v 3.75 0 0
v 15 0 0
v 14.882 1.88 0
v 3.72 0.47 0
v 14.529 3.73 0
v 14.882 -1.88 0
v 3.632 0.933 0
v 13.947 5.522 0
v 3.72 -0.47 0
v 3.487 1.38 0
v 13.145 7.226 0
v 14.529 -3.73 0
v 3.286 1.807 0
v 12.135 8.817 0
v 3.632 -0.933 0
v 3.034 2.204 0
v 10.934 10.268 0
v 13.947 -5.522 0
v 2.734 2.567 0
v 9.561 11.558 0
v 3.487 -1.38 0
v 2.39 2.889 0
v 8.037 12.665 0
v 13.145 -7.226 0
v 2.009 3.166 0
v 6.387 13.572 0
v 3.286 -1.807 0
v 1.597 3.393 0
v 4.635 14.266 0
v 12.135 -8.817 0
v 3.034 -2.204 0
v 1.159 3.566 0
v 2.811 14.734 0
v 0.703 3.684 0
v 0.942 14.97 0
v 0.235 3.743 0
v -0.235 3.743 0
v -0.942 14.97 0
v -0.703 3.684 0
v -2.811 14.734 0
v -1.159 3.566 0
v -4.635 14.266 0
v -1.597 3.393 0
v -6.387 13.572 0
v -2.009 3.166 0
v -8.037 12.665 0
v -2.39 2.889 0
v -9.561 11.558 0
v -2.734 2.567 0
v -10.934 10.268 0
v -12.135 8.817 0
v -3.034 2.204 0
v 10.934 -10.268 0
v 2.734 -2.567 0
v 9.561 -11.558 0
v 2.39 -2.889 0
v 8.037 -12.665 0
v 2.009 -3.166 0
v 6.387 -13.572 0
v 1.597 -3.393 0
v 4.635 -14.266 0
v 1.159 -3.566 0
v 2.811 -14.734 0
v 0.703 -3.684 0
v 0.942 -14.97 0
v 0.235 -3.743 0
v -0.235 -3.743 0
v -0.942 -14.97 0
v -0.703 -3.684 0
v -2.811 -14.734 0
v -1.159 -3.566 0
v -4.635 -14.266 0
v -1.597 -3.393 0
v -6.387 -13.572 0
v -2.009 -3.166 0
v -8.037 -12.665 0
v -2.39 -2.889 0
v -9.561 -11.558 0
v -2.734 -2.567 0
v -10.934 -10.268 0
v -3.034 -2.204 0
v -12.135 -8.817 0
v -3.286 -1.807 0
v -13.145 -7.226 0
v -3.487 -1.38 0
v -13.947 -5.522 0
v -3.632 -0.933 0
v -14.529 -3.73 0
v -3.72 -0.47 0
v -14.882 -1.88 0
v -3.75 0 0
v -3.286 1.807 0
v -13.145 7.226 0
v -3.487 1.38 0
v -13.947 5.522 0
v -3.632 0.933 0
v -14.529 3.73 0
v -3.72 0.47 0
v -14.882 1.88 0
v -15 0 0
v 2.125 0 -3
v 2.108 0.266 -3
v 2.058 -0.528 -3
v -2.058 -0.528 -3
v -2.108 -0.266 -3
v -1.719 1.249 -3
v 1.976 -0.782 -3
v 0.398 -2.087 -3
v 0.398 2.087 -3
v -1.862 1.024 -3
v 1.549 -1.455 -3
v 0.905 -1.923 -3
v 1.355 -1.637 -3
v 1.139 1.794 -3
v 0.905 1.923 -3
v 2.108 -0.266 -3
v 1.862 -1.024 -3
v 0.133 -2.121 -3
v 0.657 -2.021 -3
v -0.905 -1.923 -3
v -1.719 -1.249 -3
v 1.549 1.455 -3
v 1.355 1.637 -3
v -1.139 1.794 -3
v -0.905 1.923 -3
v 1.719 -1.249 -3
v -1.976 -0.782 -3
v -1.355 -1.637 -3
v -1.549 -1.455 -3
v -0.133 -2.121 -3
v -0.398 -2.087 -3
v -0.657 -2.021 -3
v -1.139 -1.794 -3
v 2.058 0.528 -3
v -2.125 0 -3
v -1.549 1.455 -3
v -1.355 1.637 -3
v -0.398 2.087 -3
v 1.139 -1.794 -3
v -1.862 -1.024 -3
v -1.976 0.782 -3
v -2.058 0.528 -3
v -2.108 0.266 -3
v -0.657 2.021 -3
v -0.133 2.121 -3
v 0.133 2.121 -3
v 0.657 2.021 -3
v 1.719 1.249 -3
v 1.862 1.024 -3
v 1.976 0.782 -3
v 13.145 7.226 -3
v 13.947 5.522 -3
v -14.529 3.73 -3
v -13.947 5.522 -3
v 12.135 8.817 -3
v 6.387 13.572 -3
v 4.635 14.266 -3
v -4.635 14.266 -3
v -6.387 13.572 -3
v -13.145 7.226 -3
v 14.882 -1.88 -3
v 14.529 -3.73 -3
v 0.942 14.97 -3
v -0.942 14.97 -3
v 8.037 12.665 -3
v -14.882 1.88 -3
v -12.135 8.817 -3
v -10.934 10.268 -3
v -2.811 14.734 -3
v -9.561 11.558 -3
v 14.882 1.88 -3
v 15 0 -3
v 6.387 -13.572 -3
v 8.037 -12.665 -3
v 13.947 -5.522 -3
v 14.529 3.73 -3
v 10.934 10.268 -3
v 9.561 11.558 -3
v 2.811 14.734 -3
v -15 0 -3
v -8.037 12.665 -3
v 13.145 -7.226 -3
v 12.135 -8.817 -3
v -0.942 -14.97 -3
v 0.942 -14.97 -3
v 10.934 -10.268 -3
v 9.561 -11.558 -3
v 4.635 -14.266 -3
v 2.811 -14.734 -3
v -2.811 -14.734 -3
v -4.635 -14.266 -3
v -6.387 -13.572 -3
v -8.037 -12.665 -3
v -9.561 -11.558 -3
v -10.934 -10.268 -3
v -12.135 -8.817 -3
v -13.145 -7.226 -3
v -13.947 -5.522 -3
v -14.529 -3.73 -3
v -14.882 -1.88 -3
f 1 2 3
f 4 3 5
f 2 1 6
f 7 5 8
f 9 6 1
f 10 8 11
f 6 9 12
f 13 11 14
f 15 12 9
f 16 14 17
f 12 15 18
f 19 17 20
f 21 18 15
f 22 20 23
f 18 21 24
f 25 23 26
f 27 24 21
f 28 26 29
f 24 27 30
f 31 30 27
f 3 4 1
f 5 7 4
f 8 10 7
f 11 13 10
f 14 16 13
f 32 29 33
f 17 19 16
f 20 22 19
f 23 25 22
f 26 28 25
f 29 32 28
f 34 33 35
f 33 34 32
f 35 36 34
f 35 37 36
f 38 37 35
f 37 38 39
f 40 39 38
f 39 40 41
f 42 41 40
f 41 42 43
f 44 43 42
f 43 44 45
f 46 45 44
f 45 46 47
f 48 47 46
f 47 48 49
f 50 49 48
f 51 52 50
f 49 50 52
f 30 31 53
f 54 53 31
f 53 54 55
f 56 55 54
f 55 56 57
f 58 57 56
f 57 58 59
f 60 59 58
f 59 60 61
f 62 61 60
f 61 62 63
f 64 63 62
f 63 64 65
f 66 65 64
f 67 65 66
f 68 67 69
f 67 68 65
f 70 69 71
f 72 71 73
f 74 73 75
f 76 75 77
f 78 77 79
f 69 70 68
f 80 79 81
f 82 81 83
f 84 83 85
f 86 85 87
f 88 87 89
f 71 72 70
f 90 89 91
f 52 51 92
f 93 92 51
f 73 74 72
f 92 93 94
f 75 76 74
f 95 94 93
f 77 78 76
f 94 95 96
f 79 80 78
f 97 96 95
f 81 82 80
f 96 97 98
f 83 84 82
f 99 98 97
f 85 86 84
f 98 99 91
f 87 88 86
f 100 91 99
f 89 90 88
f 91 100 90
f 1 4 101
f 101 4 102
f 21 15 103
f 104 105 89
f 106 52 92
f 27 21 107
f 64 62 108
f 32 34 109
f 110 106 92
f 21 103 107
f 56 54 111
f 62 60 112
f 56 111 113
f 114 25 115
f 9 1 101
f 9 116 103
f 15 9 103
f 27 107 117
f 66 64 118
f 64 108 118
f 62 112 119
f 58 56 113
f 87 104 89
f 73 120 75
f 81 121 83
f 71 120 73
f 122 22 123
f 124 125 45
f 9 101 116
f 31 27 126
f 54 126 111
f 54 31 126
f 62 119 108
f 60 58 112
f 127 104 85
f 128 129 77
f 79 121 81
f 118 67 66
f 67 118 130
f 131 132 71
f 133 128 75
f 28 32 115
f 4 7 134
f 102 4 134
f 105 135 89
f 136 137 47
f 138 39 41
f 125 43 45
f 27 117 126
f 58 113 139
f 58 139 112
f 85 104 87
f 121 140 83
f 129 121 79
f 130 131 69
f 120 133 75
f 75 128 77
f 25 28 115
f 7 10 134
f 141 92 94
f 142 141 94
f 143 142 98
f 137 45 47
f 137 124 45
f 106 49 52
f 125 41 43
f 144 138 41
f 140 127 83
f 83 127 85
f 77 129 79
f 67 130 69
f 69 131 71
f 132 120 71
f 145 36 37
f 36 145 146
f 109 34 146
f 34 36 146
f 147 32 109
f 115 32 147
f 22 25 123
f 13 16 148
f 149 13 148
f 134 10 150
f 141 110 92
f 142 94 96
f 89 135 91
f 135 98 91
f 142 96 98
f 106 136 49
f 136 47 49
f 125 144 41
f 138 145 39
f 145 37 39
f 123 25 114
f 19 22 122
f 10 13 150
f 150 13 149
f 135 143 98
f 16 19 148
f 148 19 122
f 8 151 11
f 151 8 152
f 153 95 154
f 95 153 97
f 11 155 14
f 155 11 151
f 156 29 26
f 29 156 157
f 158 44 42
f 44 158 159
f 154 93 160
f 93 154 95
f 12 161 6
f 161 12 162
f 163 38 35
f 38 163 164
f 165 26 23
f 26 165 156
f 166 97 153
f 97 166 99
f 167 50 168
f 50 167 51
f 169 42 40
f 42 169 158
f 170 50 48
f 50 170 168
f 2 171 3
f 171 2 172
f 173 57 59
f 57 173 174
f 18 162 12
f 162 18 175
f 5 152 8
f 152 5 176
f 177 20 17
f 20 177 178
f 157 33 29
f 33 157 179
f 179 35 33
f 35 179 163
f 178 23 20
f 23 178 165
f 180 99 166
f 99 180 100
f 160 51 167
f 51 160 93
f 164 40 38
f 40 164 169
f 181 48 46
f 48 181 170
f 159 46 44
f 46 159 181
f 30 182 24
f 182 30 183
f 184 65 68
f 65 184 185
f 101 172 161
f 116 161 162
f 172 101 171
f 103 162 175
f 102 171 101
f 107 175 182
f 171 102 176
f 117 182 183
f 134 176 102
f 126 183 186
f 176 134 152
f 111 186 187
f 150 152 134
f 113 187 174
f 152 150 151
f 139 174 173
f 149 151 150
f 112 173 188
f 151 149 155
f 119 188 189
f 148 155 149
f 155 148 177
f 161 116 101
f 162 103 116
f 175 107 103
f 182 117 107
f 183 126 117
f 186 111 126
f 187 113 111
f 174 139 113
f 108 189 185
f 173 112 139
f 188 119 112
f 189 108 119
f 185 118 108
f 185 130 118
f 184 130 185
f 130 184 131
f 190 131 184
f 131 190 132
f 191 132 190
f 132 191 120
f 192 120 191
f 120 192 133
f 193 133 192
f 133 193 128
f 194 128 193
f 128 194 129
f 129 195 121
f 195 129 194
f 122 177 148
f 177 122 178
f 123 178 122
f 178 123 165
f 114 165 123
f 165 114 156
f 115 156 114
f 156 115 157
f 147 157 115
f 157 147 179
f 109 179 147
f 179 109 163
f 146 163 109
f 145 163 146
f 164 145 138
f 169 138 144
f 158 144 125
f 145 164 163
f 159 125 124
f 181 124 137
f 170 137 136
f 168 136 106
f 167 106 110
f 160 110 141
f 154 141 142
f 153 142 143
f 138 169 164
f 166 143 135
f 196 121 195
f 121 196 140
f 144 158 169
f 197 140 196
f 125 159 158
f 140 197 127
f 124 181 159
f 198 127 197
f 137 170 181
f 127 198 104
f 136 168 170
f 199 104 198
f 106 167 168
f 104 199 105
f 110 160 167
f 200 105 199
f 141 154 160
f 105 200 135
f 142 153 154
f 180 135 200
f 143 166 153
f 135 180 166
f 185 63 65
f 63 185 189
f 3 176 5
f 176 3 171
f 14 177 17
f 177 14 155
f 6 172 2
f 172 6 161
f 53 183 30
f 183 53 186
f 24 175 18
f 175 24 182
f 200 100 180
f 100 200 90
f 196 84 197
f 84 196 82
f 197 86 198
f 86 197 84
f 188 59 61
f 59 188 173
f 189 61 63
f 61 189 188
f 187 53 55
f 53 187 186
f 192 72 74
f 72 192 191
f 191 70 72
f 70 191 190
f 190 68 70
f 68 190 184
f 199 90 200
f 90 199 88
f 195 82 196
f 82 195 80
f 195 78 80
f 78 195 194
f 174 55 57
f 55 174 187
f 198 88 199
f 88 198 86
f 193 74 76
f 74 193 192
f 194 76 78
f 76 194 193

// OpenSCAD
$fn = 50;

difference() {
	union() {
		translate(v = [0, 0, -3.0]) {
			cylinder(h = 3, r = 15.0);
		}
	}
	union() {
		translate(v = [0, 0, 0]) {
			rotate(a = [0, 0, 0]) {
				difference() {
					union() {
						translate(v = [0, 0, -6.0]) {
							cylinder(h = 6, r = 2.0);
						}
						translate(v = [0, 0, -3]) {
							cylinder(h = 3, r1 = 2.125, r2 = 3.75);
						}
						translate(v = [0, 0, -6.0]) {
							cylinder(h = 6, r = 2.125);
						}
						translate(v = [0, 0, -6.0]) {
							cylinder(h = 6, r = 2.0);
						}
					}
					union();
				}
			}
		}
	}
}
